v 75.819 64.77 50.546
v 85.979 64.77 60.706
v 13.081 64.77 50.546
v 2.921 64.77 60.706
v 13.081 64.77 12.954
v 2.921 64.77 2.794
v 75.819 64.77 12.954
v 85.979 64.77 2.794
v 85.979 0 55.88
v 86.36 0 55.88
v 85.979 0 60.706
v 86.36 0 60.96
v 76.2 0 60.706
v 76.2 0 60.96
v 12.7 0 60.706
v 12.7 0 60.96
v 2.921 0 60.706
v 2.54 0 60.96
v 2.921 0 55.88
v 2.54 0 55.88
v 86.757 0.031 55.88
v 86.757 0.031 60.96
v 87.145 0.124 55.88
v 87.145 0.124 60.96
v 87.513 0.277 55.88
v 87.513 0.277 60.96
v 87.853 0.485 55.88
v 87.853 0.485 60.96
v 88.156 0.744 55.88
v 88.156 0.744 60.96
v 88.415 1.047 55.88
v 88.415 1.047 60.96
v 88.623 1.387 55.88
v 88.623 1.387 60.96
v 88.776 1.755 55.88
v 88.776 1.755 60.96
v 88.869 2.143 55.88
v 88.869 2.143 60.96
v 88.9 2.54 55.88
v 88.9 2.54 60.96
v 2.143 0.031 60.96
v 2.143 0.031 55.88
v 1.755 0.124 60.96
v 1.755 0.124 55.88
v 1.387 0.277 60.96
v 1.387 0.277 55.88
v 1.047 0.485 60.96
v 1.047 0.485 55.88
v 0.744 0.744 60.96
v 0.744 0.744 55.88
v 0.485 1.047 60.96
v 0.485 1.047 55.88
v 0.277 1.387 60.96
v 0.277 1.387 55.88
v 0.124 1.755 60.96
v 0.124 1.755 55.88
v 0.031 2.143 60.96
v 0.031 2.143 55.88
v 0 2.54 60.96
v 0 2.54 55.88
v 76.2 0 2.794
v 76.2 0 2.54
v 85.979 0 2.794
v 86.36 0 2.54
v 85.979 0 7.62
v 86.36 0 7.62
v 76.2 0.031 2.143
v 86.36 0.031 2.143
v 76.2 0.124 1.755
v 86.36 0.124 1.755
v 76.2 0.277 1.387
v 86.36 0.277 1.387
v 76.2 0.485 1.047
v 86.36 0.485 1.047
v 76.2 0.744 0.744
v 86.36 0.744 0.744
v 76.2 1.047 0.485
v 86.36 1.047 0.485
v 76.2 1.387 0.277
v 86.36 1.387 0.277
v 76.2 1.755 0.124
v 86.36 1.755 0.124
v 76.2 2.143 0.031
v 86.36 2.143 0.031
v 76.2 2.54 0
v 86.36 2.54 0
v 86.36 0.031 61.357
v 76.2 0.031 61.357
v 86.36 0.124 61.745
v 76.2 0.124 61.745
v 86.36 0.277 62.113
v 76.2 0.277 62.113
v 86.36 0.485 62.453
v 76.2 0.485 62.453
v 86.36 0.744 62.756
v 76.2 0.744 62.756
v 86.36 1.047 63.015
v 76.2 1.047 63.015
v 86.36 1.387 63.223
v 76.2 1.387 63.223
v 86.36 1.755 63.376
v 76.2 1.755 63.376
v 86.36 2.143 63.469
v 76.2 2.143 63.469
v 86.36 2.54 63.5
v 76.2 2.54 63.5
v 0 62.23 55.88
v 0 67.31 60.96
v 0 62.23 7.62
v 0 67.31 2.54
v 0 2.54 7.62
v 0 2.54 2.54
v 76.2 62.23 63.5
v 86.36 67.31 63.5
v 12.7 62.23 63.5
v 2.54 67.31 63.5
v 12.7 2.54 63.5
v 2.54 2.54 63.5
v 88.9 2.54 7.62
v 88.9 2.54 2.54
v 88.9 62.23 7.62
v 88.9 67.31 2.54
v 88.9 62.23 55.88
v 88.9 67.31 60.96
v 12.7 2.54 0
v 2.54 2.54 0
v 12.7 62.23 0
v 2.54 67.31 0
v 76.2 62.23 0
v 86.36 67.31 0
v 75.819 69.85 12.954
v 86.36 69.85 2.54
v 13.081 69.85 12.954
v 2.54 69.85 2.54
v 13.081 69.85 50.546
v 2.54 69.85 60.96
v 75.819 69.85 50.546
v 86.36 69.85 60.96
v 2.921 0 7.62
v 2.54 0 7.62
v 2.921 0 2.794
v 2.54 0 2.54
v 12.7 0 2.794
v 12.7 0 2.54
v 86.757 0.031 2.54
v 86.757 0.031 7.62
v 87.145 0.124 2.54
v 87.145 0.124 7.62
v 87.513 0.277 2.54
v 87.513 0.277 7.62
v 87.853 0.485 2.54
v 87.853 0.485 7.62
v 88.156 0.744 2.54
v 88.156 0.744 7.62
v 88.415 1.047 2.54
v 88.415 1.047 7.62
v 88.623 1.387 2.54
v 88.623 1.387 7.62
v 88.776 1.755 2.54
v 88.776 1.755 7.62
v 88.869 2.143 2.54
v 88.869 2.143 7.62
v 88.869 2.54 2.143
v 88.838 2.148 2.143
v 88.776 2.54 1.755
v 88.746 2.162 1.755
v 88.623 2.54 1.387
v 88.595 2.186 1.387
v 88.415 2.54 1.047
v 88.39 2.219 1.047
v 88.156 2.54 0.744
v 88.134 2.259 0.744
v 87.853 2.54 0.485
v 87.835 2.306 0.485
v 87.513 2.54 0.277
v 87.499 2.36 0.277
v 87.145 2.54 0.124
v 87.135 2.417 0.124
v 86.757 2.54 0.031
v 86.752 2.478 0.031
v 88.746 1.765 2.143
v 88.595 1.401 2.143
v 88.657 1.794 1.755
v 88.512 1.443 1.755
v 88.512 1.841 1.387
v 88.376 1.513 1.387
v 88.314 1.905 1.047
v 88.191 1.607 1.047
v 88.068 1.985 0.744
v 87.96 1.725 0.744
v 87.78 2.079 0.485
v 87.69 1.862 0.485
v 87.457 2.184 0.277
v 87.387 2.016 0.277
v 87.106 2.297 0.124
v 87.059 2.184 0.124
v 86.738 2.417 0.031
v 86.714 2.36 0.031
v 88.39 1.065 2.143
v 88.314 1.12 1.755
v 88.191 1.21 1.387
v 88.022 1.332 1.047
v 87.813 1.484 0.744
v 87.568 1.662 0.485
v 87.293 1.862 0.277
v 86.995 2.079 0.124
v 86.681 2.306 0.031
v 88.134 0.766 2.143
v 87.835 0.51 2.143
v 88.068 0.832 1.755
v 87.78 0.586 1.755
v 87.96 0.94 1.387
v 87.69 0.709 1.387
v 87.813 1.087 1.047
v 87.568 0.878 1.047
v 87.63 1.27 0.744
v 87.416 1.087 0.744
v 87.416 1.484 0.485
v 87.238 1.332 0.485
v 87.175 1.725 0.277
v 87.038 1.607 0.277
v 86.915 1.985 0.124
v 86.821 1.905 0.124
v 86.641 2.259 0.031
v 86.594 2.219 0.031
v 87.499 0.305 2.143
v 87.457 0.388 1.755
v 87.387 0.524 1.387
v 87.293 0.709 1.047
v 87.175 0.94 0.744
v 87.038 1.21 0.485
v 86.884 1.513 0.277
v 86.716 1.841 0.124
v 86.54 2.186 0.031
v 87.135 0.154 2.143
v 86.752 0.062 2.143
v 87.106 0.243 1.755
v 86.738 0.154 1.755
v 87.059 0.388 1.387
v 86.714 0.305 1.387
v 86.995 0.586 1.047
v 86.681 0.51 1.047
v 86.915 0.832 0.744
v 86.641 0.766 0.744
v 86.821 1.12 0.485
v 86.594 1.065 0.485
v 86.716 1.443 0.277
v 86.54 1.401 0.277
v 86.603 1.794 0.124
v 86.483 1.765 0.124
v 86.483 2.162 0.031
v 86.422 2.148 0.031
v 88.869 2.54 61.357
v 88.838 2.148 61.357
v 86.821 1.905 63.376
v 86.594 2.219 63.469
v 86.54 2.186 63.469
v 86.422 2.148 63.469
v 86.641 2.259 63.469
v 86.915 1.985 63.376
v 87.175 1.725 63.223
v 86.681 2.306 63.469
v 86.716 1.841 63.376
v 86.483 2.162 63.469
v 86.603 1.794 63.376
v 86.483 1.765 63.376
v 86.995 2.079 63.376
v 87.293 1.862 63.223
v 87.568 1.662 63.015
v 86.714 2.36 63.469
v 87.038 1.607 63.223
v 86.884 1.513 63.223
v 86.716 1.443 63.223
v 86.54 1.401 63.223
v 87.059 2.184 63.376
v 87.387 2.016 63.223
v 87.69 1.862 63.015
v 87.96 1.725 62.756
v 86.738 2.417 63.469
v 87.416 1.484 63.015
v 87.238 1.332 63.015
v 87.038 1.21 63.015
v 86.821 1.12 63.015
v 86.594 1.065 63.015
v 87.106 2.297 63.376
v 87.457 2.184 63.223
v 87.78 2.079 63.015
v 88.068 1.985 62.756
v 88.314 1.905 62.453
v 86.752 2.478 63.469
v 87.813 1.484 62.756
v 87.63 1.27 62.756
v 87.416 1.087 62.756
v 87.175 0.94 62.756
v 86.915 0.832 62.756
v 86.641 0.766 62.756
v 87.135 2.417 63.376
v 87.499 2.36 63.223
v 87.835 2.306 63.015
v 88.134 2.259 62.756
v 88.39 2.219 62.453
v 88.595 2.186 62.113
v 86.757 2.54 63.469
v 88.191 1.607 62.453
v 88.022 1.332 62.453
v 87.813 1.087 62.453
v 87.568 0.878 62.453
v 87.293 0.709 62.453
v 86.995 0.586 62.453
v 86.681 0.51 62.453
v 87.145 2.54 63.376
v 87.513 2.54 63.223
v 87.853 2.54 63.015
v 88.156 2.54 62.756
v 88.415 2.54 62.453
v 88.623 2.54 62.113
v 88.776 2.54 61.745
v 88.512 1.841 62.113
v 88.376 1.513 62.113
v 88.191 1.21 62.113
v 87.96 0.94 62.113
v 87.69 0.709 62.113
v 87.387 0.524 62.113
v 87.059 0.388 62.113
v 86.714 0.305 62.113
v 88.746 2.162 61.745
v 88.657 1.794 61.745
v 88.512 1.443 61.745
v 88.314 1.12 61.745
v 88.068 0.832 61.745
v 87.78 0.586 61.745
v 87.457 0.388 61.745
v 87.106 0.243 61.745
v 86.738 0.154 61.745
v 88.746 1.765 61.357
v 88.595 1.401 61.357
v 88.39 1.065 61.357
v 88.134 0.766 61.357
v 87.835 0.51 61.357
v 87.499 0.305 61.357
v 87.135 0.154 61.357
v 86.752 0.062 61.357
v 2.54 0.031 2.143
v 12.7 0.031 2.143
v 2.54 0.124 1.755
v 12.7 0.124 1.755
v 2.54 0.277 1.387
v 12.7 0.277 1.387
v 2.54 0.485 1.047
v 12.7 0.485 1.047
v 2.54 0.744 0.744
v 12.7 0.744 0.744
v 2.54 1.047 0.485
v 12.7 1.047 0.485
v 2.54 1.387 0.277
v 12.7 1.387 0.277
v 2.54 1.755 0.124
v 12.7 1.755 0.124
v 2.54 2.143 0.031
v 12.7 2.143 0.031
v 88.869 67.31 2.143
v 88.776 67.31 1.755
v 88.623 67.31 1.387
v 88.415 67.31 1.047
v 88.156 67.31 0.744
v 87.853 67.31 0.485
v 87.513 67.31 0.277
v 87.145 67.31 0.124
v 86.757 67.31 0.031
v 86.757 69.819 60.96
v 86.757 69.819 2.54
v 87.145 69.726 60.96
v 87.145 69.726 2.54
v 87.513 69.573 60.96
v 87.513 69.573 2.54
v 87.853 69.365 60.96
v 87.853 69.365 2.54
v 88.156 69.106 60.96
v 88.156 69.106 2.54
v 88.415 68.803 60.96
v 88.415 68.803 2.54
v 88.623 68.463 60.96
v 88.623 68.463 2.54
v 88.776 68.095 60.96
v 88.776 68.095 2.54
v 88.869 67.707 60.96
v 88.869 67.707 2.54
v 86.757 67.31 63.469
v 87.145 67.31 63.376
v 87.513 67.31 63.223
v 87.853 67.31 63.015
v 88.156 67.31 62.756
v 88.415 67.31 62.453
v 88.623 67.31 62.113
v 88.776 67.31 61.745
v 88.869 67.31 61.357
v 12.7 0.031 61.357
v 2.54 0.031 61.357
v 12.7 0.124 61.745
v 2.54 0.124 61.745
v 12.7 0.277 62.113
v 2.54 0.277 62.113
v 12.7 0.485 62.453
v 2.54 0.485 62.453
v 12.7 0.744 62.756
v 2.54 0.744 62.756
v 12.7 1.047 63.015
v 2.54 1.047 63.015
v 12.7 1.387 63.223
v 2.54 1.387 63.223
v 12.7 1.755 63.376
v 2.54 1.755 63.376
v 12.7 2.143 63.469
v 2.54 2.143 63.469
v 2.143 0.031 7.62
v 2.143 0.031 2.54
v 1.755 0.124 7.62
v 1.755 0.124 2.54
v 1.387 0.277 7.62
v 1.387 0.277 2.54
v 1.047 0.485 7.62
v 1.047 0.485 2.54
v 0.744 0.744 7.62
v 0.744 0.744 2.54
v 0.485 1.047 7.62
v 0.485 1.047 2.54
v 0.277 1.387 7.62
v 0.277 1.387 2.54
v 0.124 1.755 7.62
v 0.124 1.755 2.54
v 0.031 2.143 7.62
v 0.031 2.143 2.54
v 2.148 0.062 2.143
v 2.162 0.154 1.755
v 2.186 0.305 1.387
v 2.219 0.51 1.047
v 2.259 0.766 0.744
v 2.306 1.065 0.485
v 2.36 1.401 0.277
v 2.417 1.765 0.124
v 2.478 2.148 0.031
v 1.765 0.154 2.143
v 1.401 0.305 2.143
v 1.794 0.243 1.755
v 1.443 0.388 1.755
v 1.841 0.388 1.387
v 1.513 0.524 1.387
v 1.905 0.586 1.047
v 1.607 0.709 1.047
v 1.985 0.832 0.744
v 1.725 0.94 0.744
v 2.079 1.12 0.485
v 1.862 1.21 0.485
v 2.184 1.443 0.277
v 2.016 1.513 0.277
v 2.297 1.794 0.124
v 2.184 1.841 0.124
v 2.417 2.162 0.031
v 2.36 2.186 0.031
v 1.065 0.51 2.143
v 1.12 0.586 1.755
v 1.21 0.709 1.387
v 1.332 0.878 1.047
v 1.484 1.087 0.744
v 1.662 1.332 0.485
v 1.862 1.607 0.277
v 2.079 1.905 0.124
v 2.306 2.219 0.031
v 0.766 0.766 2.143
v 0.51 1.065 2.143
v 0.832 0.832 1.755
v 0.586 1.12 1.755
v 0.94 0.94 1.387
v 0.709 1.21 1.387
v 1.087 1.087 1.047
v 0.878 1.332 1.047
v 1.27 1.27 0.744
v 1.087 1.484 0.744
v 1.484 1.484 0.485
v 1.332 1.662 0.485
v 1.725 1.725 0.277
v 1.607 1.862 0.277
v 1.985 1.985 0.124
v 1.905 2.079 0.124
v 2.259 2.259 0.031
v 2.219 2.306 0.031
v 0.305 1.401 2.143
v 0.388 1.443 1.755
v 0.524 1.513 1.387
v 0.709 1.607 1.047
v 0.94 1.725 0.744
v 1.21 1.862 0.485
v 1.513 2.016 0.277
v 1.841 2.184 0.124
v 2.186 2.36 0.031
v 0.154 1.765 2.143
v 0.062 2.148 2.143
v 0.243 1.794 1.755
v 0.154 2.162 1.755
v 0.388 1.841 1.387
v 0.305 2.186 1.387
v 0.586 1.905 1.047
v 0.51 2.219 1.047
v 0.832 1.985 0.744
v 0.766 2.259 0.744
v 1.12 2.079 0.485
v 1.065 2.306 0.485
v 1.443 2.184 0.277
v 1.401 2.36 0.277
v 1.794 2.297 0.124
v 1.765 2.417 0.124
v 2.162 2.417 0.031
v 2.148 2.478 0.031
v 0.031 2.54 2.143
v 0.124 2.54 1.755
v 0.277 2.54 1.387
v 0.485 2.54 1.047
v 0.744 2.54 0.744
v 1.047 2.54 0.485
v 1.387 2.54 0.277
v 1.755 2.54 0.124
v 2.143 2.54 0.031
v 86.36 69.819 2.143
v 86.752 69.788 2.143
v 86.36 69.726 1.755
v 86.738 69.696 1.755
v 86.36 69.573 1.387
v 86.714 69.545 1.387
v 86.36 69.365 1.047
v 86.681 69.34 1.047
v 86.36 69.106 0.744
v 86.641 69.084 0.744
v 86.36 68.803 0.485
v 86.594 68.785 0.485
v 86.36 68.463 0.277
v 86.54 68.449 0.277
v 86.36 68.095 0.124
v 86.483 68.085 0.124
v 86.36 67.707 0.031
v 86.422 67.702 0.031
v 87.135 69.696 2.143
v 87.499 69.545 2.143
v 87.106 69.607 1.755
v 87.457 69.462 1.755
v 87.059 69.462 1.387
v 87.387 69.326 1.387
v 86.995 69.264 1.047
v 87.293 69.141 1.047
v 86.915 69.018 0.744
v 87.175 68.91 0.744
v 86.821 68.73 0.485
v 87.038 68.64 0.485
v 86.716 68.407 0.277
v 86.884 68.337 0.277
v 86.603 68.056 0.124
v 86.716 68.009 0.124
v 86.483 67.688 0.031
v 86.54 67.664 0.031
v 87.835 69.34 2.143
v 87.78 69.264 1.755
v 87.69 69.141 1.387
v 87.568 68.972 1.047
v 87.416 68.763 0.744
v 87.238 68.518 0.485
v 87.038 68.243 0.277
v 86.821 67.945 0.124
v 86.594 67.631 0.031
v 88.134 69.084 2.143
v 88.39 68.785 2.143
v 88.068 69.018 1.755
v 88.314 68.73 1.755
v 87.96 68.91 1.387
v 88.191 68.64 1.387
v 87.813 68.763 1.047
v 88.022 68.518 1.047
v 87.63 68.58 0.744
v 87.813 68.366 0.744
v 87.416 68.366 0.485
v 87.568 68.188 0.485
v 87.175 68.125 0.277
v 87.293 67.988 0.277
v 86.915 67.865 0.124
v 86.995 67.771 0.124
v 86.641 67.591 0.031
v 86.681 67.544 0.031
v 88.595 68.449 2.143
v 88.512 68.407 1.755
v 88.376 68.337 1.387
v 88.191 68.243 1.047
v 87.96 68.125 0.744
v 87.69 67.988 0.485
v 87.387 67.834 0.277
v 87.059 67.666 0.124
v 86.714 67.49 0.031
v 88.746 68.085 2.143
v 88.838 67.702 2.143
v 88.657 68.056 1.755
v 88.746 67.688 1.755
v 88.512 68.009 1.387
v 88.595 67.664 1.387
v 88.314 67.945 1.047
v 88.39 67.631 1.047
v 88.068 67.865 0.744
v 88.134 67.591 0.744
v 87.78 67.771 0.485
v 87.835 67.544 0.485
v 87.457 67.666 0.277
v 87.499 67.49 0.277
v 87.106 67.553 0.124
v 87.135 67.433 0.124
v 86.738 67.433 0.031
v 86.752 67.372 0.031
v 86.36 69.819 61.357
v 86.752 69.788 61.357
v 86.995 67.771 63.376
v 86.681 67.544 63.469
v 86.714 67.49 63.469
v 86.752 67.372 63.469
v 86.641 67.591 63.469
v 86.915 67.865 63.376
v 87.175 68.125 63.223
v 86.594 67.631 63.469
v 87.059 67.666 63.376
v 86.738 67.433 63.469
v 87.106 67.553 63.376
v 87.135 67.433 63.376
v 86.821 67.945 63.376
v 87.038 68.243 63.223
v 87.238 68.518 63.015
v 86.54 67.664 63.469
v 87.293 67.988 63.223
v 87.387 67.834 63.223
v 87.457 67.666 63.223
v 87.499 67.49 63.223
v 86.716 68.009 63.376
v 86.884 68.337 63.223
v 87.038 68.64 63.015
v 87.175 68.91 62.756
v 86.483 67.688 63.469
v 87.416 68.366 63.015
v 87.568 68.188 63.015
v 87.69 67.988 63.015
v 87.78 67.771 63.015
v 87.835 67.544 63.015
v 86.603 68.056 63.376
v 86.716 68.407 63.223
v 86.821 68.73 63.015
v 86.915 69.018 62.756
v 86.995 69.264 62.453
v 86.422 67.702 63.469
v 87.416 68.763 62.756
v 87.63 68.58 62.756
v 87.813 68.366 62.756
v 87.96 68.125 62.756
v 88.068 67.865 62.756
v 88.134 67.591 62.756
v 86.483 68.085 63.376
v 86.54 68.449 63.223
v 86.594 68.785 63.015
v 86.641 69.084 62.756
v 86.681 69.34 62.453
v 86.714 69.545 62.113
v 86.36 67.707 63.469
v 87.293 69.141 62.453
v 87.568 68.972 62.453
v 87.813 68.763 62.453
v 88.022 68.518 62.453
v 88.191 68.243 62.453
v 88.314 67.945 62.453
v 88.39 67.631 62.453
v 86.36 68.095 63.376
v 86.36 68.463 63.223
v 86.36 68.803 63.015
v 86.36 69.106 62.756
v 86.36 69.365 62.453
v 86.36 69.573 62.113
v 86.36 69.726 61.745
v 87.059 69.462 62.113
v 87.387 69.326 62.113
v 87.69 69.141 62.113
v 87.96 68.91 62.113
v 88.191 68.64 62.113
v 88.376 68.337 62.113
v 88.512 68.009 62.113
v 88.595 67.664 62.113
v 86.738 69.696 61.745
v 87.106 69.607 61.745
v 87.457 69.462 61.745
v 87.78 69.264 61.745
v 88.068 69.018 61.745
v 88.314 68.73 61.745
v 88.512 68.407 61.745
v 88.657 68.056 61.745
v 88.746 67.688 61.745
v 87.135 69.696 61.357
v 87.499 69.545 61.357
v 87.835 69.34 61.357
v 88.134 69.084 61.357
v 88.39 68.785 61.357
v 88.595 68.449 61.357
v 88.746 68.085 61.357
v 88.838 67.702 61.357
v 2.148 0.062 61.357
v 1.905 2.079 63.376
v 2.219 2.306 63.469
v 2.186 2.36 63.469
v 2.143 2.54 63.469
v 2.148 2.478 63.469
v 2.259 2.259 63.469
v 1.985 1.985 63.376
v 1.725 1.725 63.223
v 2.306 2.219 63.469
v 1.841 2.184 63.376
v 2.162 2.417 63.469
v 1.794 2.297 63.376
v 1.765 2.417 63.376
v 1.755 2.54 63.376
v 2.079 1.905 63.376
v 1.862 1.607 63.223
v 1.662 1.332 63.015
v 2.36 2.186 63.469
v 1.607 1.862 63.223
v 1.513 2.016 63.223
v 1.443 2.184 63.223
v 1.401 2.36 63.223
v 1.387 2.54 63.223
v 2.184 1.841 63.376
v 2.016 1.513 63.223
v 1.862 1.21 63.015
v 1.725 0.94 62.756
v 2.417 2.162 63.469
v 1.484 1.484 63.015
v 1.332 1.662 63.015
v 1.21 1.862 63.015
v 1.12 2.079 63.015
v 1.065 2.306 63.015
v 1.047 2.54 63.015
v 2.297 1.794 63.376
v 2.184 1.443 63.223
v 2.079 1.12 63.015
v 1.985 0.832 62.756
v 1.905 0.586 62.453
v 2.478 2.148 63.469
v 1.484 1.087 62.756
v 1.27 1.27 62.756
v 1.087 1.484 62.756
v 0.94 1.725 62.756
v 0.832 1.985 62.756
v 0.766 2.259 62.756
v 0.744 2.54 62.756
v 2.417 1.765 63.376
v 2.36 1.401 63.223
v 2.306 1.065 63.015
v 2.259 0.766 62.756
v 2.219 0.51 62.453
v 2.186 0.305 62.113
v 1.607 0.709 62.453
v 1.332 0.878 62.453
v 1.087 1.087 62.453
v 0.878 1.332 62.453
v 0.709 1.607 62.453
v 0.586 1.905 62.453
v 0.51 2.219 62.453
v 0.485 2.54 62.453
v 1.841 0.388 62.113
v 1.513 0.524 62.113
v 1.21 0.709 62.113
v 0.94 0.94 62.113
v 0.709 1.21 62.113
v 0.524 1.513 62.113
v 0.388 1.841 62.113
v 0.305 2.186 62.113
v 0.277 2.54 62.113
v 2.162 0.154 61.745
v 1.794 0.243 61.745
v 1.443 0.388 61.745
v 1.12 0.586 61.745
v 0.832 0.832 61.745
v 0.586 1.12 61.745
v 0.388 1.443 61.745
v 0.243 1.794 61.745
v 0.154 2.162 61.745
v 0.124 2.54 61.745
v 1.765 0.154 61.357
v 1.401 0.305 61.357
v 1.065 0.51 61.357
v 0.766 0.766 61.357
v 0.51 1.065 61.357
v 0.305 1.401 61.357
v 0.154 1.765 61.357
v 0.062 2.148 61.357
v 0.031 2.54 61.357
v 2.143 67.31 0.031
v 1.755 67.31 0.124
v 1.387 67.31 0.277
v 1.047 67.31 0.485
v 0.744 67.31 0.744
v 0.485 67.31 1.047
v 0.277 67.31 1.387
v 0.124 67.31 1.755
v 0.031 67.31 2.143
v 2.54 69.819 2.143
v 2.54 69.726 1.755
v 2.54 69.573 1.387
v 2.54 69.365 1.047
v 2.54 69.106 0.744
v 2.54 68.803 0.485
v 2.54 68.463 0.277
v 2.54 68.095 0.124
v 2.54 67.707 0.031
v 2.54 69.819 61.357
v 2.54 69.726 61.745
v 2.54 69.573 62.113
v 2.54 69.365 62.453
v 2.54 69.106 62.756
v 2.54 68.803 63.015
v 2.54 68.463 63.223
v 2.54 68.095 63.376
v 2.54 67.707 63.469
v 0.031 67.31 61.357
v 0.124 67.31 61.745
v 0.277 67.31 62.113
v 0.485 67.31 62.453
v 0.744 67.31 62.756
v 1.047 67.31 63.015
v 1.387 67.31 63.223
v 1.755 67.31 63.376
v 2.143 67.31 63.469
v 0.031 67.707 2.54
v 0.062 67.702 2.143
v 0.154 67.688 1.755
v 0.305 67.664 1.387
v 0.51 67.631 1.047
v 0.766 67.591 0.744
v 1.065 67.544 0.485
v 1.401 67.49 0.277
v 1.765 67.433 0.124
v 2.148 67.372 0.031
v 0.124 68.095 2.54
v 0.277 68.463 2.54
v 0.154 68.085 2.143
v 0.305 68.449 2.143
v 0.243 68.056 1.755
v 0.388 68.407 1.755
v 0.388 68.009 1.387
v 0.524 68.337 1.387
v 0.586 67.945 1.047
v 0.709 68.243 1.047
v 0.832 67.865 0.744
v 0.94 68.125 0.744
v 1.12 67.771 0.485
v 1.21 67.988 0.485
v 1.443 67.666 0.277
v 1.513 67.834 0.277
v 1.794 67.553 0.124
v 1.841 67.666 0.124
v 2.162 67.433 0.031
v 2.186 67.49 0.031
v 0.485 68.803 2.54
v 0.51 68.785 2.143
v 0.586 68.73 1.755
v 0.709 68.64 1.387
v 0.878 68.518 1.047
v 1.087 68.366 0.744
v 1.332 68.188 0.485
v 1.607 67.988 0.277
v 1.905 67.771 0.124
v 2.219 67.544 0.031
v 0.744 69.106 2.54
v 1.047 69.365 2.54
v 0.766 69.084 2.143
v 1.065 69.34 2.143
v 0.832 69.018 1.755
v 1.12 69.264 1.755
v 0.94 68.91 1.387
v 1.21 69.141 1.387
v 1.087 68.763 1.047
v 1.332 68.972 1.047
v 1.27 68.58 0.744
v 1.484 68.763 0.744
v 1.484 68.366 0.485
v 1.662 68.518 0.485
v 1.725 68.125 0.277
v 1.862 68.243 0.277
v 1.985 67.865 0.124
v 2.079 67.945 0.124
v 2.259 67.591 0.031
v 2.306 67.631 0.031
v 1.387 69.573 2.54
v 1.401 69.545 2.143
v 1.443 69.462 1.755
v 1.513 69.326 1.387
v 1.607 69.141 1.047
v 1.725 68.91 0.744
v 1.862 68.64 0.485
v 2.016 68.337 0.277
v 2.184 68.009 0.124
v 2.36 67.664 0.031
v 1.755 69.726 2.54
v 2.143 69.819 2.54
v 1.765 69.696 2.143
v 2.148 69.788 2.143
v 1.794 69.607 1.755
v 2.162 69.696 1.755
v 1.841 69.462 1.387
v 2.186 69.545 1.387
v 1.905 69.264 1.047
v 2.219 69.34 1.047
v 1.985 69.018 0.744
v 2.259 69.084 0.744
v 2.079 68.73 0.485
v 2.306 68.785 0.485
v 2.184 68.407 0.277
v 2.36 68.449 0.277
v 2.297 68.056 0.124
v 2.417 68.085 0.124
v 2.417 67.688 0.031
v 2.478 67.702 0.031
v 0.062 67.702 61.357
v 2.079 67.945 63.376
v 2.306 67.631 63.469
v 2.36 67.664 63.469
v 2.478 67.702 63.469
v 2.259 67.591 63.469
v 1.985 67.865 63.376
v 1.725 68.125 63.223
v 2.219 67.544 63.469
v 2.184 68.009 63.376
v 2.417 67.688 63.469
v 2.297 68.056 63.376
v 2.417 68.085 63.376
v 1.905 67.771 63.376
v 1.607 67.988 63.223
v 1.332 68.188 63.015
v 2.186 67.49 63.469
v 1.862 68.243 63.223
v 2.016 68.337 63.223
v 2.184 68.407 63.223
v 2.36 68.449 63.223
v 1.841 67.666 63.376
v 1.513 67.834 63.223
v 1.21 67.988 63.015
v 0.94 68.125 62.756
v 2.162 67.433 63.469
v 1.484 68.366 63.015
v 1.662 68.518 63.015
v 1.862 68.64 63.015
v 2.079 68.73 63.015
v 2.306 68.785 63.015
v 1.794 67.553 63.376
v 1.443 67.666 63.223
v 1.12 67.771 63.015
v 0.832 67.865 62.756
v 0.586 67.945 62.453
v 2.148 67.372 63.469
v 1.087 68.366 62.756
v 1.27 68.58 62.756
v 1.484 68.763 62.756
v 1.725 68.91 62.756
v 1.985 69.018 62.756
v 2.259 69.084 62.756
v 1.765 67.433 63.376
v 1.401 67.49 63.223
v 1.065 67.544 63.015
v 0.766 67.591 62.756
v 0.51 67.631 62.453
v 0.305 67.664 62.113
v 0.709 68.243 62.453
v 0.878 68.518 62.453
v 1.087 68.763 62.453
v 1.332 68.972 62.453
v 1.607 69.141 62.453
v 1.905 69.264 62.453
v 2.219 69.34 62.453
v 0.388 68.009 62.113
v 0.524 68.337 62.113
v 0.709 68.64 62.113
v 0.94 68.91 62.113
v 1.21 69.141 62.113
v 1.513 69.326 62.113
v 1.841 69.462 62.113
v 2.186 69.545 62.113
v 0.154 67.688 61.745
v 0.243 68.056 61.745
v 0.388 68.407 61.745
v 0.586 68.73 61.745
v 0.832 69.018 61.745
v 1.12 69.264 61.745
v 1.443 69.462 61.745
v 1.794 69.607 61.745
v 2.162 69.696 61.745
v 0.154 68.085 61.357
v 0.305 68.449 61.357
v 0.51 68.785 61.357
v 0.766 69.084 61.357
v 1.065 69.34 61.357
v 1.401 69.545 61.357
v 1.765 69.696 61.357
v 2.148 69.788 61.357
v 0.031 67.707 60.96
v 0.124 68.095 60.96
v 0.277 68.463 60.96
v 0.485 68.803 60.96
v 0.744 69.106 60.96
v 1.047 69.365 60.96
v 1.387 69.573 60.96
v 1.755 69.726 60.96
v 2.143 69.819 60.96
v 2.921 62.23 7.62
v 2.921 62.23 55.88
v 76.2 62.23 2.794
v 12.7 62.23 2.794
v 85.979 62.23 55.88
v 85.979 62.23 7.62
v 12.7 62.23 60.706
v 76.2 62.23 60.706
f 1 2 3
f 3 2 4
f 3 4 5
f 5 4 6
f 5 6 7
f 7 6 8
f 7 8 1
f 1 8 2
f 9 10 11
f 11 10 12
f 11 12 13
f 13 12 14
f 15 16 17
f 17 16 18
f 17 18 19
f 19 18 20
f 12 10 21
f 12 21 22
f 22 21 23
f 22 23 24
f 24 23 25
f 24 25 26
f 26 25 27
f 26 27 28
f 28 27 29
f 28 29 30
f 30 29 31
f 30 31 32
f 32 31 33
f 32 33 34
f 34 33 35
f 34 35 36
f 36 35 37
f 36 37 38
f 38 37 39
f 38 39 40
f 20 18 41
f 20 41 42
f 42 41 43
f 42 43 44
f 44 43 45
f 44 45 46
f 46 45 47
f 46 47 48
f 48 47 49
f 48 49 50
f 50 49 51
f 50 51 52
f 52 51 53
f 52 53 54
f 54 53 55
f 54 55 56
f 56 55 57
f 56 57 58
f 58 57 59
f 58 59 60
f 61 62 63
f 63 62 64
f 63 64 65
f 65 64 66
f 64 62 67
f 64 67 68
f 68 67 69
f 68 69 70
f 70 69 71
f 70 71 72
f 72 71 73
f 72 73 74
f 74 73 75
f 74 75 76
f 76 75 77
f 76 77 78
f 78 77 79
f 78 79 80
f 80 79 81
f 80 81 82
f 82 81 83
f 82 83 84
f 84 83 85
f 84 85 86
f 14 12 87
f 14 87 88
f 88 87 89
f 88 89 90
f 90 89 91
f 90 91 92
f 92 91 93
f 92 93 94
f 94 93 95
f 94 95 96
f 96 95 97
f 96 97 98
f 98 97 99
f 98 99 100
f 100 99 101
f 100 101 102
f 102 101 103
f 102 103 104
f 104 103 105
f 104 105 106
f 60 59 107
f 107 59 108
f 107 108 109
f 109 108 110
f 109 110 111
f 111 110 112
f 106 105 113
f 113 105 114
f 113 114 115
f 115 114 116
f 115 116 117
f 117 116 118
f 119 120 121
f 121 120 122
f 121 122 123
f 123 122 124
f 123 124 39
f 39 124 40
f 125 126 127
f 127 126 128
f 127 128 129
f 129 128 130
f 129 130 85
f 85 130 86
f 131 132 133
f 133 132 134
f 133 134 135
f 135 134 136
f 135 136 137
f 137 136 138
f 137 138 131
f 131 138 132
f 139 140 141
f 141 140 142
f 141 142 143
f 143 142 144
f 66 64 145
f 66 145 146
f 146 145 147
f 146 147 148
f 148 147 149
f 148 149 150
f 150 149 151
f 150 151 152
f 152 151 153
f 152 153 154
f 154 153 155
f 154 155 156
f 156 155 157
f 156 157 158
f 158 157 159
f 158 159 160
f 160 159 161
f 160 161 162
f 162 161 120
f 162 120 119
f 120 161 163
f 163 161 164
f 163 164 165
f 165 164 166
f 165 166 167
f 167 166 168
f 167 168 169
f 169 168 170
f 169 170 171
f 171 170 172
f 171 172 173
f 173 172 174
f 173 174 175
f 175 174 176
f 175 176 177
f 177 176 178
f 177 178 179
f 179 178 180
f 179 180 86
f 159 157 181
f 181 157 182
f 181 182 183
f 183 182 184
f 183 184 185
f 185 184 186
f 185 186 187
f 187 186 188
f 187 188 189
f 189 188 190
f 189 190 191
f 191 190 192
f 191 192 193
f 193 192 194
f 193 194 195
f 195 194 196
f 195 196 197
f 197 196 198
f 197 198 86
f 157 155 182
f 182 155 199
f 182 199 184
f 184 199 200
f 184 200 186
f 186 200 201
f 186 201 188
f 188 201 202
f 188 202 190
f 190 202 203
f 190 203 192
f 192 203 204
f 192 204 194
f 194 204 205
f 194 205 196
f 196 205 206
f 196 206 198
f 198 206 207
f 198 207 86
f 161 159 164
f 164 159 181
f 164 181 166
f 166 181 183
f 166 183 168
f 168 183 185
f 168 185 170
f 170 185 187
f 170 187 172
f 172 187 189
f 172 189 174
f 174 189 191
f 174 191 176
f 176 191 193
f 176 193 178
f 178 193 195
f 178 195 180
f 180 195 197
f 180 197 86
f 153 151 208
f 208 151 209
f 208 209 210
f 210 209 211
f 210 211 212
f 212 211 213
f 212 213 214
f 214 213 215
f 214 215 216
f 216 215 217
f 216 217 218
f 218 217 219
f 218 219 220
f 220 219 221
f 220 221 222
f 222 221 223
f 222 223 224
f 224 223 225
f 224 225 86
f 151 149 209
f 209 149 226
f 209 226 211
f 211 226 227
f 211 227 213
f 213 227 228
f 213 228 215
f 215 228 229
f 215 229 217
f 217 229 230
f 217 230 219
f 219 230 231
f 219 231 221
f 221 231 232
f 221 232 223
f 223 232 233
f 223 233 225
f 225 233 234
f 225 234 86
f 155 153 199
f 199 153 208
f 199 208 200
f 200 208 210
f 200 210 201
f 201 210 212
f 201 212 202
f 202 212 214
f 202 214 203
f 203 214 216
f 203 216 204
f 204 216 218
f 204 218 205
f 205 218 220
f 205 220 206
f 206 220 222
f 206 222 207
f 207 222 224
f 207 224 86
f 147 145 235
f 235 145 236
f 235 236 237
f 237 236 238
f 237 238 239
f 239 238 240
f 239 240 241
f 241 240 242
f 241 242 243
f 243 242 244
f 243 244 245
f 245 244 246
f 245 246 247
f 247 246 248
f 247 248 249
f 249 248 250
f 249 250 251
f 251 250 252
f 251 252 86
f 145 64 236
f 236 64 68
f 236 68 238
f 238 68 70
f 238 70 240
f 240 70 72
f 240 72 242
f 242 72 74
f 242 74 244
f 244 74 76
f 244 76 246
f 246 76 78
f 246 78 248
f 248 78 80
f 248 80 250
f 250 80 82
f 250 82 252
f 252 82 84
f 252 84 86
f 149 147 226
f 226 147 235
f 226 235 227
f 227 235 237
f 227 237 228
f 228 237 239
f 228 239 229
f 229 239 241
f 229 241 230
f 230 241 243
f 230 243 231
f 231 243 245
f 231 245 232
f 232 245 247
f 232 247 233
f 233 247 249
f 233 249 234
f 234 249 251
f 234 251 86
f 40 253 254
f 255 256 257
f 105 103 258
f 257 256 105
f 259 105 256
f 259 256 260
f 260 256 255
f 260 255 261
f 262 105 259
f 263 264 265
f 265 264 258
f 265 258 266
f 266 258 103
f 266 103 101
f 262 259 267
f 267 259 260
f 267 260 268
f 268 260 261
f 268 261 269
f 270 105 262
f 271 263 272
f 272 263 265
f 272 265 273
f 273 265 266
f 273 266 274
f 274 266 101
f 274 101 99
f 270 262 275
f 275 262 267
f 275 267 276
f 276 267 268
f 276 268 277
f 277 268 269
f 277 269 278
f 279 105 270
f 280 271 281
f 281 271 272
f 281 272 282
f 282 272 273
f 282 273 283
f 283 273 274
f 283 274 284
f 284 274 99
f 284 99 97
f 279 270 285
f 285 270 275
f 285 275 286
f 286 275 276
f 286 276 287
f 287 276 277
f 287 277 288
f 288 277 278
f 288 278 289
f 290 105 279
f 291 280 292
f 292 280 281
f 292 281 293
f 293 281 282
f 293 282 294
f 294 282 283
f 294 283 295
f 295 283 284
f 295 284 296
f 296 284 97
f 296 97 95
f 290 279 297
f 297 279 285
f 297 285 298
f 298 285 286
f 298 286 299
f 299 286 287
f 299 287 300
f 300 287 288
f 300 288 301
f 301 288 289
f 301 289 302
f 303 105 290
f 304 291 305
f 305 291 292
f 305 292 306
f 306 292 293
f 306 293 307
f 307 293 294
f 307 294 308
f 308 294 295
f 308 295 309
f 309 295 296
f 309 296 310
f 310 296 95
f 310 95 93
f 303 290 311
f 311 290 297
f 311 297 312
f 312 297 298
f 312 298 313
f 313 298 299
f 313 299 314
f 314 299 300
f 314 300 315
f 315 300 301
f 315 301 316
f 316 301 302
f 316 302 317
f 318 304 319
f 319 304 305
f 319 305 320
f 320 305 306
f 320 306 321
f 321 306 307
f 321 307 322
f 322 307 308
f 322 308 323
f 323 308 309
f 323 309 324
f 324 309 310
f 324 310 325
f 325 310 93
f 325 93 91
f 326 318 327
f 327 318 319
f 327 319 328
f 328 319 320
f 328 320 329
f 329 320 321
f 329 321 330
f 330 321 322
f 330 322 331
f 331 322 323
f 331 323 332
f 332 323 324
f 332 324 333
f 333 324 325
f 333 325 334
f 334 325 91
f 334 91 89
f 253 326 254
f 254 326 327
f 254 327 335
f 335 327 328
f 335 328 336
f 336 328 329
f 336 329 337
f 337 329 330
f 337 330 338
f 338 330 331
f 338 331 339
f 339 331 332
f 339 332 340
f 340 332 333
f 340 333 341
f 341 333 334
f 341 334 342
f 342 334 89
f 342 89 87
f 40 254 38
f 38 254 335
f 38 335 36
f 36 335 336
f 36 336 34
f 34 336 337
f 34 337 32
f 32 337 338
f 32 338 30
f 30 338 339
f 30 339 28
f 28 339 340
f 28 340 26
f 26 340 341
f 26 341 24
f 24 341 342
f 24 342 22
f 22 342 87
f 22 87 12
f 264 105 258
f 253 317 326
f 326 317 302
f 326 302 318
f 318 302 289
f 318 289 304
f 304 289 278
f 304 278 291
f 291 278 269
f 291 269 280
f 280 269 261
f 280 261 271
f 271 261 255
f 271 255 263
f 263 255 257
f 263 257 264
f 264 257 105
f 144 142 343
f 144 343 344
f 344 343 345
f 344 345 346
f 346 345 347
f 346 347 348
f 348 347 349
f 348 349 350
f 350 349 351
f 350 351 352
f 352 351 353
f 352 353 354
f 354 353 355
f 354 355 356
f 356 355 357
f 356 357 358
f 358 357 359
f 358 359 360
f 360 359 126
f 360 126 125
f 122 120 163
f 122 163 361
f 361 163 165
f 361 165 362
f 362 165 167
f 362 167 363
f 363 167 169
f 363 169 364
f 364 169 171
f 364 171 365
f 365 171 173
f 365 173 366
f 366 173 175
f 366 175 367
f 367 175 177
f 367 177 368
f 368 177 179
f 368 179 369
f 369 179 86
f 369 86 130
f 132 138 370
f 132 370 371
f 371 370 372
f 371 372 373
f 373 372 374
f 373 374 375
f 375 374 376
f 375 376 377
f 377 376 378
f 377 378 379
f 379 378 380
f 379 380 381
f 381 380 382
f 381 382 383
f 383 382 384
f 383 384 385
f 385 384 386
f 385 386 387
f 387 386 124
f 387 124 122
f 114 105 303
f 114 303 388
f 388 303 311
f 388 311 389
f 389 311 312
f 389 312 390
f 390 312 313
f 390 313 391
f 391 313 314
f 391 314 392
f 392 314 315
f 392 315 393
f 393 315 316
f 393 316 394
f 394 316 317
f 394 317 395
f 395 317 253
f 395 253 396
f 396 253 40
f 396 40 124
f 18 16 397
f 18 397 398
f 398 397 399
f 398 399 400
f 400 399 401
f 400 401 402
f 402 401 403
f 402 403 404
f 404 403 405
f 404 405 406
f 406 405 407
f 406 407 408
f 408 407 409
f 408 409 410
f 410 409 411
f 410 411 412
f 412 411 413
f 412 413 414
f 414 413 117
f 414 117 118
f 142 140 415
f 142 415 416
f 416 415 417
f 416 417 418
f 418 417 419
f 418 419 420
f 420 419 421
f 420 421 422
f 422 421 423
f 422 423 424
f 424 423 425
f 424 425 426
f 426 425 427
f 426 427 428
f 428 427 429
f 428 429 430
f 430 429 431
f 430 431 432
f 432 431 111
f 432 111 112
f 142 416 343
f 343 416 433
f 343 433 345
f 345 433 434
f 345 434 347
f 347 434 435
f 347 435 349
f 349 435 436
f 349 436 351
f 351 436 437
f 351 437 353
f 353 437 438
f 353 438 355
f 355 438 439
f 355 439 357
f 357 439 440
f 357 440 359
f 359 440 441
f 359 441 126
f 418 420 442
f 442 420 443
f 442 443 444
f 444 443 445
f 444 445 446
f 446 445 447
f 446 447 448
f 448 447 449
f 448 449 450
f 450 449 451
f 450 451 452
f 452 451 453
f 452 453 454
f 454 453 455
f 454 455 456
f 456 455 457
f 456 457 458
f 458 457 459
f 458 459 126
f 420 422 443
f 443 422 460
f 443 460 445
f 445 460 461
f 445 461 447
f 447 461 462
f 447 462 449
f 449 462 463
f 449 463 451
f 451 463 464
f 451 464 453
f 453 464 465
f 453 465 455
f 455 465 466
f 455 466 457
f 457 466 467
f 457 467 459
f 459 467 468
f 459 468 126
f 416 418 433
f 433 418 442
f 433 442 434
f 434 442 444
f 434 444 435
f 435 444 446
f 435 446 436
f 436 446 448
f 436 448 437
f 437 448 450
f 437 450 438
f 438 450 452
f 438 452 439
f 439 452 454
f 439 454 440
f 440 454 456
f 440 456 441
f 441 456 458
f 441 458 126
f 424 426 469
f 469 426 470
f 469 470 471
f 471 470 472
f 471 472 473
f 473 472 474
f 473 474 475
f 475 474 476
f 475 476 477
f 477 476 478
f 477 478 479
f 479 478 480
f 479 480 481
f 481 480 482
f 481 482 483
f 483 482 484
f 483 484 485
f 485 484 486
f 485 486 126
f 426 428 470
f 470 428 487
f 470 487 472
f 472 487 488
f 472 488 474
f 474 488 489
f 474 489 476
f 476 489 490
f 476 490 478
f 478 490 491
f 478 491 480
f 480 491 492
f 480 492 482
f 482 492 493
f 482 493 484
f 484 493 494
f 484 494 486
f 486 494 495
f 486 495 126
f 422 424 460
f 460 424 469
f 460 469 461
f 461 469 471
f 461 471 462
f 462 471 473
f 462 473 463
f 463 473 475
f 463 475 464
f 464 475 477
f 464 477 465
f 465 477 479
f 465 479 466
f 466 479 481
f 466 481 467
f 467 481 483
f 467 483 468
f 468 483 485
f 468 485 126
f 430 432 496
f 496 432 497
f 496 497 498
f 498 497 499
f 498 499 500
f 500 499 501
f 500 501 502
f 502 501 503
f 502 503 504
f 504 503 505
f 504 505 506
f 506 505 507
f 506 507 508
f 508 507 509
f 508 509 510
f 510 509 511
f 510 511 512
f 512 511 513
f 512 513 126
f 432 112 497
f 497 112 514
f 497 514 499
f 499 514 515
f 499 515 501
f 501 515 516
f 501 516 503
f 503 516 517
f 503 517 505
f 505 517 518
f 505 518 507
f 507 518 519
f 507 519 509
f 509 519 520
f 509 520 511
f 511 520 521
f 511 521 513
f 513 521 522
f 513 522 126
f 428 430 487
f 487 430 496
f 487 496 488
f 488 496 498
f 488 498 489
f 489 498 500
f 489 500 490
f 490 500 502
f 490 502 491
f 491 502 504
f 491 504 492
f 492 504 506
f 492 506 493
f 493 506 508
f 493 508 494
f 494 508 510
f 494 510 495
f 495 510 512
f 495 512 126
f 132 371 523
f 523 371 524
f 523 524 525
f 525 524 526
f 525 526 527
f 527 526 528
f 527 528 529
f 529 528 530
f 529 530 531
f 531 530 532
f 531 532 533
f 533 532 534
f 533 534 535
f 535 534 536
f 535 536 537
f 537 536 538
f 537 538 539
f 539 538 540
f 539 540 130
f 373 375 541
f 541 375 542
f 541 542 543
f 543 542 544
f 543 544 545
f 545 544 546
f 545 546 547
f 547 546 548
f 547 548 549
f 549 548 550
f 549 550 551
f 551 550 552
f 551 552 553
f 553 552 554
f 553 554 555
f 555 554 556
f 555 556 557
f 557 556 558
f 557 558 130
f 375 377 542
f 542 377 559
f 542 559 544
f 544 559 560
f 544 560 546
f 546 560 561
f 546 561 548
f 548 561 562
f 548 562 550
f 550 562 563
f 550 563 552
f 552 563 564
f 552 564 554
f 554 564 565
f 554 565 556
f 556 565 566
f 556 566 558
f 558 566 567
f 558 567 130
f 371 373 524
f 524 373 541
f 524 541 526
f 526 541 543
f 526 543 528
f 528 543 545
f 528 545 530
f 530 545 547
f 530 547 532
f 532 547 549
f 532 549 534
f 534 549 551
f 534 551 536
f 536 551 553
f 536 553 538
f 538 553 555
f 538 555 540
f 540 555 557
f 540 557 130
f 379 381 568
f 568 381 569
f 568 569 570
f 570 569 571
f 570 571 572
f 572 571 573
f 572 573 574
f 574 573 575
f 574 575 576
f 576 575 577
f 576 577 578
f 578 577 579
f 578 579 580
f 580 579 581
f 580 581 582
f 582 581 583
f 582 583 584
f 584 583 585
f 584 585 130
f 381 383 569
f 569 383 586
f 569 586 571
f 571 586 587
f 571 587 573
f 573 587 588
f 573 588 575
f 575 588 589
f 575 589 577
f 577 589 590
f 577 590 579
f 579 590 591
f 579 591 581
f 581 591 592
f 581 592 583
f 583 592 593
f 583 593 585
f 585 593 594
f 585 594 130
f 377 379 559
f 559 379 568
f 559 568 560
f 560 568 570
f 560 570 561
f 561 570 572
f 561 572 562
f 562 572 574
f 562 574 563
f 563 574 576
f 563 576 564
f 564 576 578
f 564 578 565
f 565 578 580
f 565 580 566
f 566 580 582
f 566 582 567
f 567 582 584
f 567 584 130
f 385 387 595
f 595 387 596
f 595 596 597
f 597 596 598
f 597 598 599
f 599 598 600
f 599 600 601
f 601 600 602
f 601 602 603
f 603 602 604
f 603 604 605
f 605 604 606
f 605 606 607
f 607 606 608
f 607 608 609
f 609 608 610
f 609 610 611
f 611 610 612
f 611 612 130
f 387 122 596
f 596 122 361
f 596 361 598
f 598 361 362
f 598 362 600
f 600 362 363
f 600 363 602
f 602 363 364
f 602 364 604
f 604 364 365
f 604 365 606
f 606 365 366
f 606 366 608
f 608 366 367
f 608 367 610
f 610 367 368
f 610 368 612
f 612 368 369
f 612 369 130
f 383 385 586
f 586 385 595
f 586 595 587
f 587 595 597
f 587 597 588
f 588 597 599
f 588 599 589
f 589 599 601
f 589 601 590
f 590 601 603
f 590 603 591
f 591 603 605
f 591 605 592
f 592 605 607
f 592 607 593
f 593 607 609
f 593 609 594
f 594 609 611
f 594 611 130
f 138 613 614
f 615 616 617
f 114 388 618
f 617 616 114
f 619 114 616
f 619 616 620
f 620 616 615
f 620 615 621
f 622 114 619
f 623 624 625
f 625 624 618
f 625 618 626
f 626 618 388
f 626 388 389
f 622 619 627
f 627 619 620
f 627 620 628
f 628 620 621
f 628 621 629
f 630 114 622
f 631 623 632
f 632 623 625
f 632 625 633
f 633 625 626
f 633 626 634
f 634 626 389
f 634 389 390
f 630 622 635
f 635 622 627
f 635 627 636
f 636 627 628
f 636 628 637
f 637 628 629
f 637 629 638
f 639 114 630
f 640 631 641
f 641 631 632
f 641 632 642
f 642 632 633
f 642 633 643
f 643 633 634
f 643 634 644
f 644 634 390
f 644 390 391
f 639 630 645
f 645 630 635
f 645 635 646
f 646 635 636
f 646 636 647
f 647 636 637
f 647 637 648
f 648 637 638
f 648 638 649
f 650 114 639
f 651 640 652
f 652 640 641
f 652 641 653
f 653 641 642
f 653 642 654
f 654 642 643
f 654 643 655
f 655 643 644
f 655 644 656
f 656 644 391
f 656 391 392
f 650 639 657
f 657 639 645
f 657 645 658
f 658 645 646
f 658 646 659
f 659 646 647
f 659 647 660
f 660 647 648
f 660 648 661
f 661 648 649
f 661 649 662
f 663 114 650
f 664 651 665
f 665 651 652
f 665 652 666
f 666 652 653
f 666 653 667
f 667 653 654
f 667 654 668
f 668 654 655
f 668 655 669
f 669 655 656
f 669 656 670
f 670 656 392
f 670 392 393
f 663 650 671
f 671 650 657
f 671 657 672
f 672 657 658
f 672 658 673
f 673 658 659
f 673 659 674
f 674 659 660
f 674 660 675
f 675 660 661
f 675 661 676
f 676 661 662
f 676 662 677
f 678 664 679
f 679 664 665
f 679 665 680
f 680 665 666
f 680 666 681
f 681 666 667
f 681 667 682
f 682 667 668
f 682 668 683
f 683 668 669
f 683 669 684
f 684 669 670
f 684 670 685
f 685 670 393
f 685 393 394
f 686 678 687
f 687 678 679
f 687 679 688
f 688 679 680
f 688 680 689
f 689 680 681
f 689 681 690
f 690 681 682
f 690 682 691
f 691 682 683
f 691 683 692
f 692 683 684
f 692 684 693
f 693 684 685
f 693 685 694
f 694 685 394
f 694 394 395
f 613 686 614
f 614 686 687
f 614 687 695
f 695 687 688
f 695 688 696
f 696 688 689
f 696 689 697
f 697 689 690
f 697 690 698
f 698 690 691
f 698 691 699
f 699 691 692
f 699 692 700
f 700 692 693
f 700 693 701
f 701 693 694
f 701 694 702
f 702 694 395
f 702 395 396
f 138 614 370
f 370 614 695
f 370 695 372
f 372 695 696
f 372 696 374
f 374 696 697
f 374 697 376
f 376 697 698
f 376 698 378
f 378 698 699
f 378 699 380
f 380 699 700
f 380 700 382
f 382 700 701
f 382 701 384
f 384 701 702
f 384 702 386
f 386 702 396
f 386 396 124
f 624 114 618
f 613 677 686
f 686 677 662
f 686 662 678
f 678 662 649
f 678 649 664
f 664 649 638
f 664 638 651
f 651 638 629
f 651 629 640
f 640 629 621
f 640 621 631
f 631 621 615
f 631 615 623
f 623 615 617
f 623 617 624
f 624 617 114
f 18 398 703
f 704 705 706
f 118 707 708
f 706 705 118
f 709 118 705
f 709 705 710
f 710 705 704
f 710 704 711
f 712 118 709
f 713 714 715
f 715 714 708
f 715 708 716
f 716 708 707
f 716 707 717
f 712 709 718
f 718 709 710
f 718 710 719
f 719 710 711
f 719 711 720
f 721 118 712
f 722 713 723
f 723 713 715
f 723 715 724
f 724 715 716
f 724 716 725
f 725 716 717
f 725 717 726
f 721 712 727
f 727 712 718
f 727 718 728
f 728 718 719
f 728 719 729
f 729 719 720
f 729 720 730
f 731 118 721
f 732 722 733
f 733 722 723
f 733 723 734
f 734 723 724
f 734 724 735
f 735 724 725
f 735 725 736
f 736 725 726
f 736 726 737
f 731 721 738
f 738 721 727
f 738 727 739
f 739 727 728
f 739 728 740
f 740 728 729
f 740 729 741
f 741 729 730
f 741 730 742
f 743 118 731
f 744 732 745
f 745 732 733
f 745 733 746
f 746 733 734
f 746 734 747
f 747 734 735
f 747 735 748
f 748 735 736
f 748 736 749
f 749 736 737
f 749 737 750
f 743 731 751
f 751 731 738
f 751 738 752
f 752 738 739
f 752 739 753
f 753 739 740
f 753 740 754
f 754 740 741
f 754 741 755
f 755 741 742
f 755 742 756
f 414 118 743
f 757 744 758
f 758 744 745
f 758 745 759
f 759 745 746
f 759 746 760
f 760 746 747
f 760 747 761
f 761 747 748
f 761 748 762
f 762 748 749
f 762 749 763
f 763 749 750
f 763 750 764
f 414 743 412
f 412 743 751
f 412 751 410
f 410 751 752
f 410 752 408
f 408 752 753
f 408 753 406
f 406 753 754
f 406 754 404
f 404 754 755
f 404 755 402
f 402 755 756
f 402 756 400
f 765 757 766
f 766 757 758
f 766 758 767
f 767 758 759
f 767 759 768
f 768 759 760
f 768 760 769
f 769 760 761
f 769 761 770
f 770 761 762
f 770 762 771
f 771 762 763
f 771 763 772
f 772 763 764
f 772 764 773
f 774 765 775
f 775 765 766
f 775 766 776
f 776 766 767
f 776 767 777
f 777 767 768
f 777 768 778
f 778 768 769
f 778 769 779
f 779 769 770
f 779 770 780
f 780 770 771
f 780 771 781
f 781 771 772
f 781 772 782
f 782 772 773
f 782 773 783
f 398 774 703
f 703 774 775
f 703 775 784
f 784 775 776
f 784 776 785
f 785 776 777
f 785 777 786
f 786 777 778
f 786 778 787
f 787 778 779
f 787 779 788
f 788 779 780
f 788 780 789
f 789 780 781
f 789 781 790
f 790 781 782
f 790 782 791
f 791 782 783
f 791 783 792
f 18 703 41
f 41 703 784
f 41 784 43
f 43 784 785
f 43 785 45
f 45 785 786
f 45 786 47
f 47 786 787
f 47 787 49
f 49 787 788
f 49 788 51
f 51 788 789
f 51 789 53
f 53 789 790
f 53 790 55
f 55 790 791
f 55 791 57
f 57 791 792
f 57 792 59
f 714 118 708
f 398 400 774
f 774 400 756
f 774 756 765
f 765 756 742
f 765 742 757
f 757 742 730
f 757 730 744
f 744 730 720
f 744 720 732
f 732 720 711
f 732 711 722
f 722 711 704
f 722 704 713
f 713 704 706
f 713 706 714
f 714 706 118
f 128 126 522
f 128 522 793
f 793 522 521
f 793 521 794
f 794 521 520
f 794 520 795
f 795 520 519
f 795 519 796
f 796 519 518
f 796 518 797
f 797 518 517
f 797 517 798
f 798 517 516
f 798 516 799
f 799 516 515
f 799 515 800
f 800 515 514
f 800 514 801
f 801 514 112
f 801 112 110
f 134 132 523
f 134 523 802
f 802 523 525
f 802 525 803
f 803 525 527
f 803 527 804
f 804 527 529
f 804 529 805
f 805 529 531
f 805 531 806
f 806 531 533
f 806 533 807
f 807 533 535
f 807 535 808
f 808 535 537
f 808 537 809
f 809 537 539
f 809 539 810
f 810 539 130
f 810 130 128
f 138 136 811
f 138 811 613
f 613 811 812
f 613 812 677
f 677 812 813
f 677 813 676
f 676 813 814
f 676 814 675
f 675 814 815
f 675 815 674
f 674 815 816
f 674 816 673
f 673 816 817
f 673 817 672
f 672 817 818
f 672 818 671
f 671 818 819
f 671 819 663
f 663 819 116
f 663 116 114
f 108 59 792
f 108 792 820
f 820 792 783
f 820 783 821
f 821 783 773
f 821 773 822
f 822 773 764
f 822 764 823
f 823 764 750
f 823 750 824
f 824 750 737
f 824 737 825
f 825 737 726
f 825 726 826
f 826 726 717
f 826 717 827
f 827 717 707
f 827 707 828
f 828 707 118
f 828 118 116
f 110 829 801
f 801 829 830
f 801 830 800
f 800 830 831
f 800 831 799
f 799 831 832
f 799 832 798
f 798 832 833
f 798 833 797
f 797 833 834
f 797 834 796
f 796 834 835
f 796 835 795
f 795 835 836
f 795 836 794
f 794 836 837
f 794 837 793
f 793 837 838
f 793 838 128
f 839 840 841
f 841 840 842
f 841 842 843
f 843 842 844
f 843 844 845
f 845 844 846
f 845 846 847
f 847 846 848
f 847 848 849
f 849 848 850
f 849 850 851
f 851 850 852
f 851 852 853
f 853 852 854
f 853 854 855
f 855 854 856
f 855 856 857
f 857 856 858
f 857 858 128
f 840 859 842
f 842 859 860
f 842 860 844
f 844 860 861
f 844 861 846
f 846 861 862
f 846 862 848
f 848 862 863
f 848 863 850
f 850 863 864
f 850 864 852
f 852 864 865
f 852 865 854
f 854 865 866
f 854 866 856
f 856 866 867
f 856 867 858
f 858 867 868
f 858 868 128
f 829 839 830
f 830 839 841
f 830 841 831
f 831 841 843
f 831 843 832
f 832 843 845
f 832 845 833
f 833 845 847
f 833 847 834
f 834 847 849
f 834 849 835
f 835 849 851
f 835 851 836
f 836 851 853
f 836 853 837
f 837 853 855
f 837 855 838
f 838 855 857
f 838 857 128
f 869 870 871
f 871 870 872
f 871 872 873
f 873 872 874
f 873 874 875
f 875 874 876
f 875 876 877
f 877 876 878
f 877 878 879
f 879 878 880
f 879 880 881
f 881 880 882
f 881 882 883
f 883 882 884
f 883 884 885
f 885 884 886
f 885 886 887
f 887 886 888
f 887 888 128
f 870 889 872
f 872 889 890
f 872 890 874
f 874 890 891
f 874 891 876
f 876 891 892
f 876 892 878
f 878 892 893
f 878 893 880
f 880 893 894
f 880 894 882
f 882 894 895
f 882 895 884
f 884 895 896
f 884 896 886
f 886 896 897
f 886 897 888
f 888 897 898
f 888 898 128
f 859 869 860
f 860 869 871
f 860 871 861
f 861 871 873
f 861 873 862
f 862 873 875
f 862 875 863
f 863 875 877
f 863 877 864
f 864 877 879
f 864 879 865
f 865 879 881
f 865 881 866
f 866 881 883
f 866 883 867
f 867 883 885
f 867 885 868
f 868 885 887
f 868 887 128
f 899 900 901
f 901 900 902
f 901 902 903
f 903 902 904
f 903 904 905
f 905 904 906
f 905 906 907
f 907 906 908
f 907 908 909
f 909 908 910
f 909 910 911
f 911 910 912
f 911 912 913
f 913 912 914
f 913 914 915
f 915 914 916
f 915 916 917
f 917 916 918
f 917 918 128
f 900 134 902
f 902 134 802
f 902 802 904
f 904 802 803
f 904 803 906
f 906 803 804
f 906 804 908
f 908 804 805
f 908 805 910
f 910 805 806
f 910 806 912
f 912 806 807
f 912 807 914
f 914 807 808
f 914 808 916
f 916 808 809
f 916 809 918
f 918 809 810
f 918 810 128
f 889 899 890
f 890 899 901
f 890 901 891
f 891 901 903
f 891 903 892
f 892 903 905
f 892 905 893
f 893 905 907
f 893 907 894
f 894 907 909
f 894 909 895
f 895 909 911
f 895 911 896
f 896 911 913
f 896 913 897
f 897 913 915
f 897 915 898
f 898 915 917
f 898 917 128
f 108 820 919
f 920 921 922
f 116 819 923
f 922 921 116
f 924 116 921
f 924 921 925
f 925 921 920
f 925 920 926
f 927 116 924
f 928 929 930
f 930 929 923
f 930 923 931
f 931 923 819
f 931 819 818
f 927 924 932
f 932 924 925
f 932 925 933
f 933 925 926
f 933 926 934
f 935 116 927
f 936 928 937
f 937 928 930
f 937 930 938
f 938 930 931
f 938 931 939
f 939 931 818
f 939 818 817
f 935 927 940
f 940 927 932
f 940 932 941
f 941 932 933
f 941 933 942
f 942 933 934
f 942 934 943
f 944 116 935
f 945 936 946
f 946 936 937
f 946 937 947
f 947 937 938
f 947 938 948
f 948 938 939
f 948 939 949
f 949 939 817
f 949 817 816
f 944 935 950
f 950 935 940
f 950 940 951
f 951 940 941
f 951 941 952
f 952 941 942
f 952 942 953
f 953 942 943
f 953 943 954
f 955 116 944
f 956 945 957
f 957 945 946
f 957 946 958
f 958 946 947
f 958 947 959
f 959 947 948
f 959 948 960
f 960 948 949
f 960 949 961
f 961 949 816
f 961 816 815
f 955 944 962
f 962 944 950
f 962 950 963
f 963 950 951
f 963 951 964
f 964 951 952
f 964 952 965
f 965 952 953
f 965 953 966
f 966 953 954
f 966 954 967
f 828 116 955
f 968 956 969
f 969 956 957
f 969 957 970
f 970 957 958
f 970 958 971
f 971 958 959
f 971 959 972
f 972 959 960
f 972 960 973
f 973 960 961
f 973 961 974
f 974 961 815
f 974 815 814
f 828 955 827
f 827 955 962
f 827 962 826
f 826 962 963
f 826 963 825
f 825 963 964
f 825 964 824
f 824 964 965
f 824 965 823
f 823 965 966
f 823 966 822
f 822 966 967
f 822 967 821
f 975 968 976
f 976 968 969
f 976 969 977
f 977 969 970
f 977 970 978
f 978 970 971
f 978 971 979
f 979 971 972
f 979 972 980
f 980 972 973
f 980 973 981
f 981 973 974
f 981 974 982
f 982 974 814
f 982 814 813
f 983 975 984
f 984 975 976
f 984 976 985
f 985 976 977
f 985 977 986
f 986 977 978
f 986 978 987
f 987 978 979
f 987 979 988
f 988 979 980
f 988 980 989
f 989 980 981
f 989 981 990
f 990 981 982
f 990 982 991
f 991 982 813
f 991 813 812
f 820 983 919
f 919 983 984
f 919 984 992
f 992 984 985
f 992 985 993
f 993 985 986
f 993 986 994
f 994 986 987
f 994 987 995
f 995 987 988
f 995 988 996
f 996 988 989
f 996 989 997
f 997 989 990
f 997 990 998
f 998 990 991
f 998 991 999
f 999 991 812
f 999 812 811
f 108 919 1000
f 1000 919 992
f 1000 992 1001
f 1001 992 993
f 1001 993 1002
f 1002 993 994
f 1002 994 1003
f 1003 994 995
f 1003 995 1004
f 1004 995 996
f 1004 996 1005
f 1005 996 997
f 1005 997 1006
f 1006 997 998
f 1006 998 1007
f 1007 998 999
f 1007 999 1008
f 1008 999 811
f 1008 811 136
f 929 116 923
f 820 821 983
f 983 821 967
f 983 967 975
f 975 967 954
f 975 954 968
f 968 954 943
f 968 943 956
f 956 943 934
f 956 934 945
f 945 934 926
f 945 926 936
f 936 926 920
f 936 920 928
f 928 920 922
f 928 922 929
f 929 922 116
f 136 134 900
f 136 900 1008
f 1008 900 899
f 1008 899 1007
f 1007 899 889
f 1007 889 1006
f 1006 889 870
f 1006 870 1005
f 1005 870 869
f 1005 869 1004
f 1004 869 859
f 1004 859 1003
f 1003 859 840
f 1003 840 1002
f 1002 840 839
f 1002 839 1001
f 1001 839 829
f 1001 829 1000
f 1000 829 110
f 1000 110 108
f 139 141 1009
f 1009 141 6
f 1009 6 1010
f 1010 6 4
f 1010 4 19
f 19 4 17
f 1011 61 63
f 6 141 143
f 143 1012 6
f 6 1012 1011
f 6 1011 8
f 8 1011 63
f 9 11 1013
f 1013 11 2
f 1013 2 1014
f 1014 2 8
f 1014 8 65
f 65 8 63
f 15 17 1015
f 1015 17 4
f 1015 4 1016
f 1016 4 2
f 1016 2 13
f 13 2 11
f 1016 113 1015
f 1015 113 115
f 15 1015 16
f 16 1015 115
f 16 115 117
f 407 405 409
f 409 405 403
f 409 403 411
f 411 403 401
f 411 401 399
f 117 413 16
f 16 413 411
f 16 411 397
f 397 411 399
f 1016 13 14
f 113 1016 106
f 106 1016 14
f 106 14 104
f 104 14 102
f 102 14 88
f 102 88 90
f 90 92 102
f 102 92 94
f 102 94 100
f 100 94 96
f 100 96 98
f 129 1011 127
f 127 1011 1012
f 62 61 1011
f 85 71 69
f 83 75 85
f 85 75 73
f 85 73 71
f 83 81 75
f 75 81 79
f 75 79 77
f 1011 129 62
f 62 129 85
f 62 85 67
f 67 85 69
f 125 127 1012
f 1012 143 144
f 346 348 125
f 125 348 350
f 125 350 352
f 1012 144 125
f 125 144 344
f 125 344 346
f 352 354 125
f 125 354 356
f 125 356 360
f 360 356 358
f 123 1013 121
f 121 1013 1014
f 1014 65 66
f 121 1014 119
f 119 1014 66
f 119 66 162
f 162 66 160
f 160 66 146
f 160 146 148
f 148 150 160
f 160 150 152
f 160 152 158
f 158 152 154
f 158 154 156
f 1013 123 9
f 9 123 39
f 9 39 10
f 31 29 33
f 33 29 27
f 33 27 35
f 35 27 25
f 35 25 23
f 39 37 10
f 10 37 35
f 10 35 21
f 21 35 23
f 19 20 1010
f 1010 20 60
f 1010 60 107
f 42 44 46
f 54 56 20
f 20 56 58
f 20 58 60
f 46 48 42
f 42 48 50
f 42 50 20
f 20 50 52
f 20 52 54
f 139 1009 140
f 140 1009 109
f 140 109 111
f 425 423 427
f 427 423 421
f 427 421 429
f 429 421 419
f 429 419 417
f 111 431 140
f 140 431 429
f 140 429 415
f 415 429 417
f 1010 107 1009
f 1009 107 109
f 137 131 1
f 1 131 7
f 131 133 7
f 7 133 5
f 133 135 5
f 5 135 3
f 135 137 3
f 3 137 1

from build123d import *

# Parameters (mm, degrees)
SKETCH1_W               = 88.9
SKETCH1_H               = 63.5
BOSS_EXTRUDE2_DEPTH     = 69.85
FILLET2_R               = 2.54
CUT_EXTRUDE1_START      = -5.08
SKETCH3_W               = 83.058
SKETCH3_H               = 57.912
CUT_EXTRUDE1_DEPTH      = 65.77
SKETCH5_W               = 63.5
SKETCH5_H               = 76.2
CUT_EXTRUDE3_DEPTH      = 1
CUT_EXTRUDE3_DEPTH_BACK = 64.5
SKETCH6_W               = 48.26
SKETCH6_H               = 76.2
CUT_EXTRUDE4_DEPTH      = 1
CUT_EXTRUDE4_DEPTH_BACK = 89.9
SKETCH7_W               = 62.738
SKETCH7_H               = 37.592
CUT_EXTRUDE5_DEPTH      = 6.08


with BuildPart() as part:
    # Sketch1 → Boss-Extrude2 (new body)
    with BuildSketch(Plane(origin=(0, 0, 0), x_dir=(1, 0, 0), z_dir=(0, 1, 0))):
        with Locations((44.45, -31.75)):
            Rectangle(SKETCH1_W, SKETCH1_H)
    extrude(amount=BOSS_EXTRUDE2_DEPTH)

    # Fillet2
    fillet2_edges = [part.edges().sort_by_distance(p)[0] for p in [
        (88.9, 69.85, 31.75),
        (44.45, 69.85, 0),
        (0, 69.85, 31.75),
        (44.45, 0, 0),
        (88.9, 0, 31.75),
        (44.45, 0, 63.5),
        (0, 0, 31.75),
        (0, 34.925, 0),
        (88.9, 34.925, 0),
        (88.9, 34.925, 63.5),
        (0, 34.925, 63.5),
        (44.45, 69.85, 63.5),
    ]]
    fillet(fillet2_edges, radius=FILLET2_R)

    # Sketch3 → Cut-Extrude1 (cut, through all)
    with BuildSketch(Plane(origin=(0, 69.85, 0), x_dir=(1, 0, 0), z_dir=(0, 1, 0)).offset(CUT_EXTRUDE1_START)):
        with Locations((44.45, -31.75)):
            Rectangle(SKETCH3_W, SKETCH3_H)
    extrude(amount=-CUT_EXTRUDE1_DEPTH, mode=Mode.SUBTRACT)

    # Sketch5 → Cut-Extrude3 (cut, two sides)
    with BuildSketch(Plane.XY.offset(63.5)) as cut_extrude3_sk:
        with Locations((44.45, 24.13)):
            Rectangle(SKETCH5_W, SKETCH5_H)
    extrude(amount=CUT_EXTRUDE3_DEPTH, mode=Mode.SUBTRACT)
    extrude(cut_extrude3_sk.sketch, amount=-CUT_EXTRUDE3_DEPTH_BACK, mode=Mode.SUBTRACT)

    # Sketch6 → Cut-Extrude4 (cut, two sides)
    with BuildSketch(Plane.ZY) as cut_extrude4_sk:
        with Locations((31.75, 24.13)):
            Rectangle(SKETCH6_W, SKETCH6_H)
    extrude(amount=CUT_EXTRUDE4_DEPTH, mode=Mode.SUBTRACT)
    extrude(cut_extrude4_sk.sketch, amount=-CUT_EXTRUDE4_DEPTH_BACK, mode=Mode.SUBTRACT)

    # Sketch7 → Cut-Extrude5 (cut, through all)
    with BuildSketch(Plane.XZ.offset(-64.77)):
        with Locations((44.45, 31.75)):
            Rectangle(SKETCH7_W, SKETCH7_H)
    extrude(amount=-CUT_EXTRUDE5_DEPTH, mode=Mode.SUBTRACT)


solid = part.part
